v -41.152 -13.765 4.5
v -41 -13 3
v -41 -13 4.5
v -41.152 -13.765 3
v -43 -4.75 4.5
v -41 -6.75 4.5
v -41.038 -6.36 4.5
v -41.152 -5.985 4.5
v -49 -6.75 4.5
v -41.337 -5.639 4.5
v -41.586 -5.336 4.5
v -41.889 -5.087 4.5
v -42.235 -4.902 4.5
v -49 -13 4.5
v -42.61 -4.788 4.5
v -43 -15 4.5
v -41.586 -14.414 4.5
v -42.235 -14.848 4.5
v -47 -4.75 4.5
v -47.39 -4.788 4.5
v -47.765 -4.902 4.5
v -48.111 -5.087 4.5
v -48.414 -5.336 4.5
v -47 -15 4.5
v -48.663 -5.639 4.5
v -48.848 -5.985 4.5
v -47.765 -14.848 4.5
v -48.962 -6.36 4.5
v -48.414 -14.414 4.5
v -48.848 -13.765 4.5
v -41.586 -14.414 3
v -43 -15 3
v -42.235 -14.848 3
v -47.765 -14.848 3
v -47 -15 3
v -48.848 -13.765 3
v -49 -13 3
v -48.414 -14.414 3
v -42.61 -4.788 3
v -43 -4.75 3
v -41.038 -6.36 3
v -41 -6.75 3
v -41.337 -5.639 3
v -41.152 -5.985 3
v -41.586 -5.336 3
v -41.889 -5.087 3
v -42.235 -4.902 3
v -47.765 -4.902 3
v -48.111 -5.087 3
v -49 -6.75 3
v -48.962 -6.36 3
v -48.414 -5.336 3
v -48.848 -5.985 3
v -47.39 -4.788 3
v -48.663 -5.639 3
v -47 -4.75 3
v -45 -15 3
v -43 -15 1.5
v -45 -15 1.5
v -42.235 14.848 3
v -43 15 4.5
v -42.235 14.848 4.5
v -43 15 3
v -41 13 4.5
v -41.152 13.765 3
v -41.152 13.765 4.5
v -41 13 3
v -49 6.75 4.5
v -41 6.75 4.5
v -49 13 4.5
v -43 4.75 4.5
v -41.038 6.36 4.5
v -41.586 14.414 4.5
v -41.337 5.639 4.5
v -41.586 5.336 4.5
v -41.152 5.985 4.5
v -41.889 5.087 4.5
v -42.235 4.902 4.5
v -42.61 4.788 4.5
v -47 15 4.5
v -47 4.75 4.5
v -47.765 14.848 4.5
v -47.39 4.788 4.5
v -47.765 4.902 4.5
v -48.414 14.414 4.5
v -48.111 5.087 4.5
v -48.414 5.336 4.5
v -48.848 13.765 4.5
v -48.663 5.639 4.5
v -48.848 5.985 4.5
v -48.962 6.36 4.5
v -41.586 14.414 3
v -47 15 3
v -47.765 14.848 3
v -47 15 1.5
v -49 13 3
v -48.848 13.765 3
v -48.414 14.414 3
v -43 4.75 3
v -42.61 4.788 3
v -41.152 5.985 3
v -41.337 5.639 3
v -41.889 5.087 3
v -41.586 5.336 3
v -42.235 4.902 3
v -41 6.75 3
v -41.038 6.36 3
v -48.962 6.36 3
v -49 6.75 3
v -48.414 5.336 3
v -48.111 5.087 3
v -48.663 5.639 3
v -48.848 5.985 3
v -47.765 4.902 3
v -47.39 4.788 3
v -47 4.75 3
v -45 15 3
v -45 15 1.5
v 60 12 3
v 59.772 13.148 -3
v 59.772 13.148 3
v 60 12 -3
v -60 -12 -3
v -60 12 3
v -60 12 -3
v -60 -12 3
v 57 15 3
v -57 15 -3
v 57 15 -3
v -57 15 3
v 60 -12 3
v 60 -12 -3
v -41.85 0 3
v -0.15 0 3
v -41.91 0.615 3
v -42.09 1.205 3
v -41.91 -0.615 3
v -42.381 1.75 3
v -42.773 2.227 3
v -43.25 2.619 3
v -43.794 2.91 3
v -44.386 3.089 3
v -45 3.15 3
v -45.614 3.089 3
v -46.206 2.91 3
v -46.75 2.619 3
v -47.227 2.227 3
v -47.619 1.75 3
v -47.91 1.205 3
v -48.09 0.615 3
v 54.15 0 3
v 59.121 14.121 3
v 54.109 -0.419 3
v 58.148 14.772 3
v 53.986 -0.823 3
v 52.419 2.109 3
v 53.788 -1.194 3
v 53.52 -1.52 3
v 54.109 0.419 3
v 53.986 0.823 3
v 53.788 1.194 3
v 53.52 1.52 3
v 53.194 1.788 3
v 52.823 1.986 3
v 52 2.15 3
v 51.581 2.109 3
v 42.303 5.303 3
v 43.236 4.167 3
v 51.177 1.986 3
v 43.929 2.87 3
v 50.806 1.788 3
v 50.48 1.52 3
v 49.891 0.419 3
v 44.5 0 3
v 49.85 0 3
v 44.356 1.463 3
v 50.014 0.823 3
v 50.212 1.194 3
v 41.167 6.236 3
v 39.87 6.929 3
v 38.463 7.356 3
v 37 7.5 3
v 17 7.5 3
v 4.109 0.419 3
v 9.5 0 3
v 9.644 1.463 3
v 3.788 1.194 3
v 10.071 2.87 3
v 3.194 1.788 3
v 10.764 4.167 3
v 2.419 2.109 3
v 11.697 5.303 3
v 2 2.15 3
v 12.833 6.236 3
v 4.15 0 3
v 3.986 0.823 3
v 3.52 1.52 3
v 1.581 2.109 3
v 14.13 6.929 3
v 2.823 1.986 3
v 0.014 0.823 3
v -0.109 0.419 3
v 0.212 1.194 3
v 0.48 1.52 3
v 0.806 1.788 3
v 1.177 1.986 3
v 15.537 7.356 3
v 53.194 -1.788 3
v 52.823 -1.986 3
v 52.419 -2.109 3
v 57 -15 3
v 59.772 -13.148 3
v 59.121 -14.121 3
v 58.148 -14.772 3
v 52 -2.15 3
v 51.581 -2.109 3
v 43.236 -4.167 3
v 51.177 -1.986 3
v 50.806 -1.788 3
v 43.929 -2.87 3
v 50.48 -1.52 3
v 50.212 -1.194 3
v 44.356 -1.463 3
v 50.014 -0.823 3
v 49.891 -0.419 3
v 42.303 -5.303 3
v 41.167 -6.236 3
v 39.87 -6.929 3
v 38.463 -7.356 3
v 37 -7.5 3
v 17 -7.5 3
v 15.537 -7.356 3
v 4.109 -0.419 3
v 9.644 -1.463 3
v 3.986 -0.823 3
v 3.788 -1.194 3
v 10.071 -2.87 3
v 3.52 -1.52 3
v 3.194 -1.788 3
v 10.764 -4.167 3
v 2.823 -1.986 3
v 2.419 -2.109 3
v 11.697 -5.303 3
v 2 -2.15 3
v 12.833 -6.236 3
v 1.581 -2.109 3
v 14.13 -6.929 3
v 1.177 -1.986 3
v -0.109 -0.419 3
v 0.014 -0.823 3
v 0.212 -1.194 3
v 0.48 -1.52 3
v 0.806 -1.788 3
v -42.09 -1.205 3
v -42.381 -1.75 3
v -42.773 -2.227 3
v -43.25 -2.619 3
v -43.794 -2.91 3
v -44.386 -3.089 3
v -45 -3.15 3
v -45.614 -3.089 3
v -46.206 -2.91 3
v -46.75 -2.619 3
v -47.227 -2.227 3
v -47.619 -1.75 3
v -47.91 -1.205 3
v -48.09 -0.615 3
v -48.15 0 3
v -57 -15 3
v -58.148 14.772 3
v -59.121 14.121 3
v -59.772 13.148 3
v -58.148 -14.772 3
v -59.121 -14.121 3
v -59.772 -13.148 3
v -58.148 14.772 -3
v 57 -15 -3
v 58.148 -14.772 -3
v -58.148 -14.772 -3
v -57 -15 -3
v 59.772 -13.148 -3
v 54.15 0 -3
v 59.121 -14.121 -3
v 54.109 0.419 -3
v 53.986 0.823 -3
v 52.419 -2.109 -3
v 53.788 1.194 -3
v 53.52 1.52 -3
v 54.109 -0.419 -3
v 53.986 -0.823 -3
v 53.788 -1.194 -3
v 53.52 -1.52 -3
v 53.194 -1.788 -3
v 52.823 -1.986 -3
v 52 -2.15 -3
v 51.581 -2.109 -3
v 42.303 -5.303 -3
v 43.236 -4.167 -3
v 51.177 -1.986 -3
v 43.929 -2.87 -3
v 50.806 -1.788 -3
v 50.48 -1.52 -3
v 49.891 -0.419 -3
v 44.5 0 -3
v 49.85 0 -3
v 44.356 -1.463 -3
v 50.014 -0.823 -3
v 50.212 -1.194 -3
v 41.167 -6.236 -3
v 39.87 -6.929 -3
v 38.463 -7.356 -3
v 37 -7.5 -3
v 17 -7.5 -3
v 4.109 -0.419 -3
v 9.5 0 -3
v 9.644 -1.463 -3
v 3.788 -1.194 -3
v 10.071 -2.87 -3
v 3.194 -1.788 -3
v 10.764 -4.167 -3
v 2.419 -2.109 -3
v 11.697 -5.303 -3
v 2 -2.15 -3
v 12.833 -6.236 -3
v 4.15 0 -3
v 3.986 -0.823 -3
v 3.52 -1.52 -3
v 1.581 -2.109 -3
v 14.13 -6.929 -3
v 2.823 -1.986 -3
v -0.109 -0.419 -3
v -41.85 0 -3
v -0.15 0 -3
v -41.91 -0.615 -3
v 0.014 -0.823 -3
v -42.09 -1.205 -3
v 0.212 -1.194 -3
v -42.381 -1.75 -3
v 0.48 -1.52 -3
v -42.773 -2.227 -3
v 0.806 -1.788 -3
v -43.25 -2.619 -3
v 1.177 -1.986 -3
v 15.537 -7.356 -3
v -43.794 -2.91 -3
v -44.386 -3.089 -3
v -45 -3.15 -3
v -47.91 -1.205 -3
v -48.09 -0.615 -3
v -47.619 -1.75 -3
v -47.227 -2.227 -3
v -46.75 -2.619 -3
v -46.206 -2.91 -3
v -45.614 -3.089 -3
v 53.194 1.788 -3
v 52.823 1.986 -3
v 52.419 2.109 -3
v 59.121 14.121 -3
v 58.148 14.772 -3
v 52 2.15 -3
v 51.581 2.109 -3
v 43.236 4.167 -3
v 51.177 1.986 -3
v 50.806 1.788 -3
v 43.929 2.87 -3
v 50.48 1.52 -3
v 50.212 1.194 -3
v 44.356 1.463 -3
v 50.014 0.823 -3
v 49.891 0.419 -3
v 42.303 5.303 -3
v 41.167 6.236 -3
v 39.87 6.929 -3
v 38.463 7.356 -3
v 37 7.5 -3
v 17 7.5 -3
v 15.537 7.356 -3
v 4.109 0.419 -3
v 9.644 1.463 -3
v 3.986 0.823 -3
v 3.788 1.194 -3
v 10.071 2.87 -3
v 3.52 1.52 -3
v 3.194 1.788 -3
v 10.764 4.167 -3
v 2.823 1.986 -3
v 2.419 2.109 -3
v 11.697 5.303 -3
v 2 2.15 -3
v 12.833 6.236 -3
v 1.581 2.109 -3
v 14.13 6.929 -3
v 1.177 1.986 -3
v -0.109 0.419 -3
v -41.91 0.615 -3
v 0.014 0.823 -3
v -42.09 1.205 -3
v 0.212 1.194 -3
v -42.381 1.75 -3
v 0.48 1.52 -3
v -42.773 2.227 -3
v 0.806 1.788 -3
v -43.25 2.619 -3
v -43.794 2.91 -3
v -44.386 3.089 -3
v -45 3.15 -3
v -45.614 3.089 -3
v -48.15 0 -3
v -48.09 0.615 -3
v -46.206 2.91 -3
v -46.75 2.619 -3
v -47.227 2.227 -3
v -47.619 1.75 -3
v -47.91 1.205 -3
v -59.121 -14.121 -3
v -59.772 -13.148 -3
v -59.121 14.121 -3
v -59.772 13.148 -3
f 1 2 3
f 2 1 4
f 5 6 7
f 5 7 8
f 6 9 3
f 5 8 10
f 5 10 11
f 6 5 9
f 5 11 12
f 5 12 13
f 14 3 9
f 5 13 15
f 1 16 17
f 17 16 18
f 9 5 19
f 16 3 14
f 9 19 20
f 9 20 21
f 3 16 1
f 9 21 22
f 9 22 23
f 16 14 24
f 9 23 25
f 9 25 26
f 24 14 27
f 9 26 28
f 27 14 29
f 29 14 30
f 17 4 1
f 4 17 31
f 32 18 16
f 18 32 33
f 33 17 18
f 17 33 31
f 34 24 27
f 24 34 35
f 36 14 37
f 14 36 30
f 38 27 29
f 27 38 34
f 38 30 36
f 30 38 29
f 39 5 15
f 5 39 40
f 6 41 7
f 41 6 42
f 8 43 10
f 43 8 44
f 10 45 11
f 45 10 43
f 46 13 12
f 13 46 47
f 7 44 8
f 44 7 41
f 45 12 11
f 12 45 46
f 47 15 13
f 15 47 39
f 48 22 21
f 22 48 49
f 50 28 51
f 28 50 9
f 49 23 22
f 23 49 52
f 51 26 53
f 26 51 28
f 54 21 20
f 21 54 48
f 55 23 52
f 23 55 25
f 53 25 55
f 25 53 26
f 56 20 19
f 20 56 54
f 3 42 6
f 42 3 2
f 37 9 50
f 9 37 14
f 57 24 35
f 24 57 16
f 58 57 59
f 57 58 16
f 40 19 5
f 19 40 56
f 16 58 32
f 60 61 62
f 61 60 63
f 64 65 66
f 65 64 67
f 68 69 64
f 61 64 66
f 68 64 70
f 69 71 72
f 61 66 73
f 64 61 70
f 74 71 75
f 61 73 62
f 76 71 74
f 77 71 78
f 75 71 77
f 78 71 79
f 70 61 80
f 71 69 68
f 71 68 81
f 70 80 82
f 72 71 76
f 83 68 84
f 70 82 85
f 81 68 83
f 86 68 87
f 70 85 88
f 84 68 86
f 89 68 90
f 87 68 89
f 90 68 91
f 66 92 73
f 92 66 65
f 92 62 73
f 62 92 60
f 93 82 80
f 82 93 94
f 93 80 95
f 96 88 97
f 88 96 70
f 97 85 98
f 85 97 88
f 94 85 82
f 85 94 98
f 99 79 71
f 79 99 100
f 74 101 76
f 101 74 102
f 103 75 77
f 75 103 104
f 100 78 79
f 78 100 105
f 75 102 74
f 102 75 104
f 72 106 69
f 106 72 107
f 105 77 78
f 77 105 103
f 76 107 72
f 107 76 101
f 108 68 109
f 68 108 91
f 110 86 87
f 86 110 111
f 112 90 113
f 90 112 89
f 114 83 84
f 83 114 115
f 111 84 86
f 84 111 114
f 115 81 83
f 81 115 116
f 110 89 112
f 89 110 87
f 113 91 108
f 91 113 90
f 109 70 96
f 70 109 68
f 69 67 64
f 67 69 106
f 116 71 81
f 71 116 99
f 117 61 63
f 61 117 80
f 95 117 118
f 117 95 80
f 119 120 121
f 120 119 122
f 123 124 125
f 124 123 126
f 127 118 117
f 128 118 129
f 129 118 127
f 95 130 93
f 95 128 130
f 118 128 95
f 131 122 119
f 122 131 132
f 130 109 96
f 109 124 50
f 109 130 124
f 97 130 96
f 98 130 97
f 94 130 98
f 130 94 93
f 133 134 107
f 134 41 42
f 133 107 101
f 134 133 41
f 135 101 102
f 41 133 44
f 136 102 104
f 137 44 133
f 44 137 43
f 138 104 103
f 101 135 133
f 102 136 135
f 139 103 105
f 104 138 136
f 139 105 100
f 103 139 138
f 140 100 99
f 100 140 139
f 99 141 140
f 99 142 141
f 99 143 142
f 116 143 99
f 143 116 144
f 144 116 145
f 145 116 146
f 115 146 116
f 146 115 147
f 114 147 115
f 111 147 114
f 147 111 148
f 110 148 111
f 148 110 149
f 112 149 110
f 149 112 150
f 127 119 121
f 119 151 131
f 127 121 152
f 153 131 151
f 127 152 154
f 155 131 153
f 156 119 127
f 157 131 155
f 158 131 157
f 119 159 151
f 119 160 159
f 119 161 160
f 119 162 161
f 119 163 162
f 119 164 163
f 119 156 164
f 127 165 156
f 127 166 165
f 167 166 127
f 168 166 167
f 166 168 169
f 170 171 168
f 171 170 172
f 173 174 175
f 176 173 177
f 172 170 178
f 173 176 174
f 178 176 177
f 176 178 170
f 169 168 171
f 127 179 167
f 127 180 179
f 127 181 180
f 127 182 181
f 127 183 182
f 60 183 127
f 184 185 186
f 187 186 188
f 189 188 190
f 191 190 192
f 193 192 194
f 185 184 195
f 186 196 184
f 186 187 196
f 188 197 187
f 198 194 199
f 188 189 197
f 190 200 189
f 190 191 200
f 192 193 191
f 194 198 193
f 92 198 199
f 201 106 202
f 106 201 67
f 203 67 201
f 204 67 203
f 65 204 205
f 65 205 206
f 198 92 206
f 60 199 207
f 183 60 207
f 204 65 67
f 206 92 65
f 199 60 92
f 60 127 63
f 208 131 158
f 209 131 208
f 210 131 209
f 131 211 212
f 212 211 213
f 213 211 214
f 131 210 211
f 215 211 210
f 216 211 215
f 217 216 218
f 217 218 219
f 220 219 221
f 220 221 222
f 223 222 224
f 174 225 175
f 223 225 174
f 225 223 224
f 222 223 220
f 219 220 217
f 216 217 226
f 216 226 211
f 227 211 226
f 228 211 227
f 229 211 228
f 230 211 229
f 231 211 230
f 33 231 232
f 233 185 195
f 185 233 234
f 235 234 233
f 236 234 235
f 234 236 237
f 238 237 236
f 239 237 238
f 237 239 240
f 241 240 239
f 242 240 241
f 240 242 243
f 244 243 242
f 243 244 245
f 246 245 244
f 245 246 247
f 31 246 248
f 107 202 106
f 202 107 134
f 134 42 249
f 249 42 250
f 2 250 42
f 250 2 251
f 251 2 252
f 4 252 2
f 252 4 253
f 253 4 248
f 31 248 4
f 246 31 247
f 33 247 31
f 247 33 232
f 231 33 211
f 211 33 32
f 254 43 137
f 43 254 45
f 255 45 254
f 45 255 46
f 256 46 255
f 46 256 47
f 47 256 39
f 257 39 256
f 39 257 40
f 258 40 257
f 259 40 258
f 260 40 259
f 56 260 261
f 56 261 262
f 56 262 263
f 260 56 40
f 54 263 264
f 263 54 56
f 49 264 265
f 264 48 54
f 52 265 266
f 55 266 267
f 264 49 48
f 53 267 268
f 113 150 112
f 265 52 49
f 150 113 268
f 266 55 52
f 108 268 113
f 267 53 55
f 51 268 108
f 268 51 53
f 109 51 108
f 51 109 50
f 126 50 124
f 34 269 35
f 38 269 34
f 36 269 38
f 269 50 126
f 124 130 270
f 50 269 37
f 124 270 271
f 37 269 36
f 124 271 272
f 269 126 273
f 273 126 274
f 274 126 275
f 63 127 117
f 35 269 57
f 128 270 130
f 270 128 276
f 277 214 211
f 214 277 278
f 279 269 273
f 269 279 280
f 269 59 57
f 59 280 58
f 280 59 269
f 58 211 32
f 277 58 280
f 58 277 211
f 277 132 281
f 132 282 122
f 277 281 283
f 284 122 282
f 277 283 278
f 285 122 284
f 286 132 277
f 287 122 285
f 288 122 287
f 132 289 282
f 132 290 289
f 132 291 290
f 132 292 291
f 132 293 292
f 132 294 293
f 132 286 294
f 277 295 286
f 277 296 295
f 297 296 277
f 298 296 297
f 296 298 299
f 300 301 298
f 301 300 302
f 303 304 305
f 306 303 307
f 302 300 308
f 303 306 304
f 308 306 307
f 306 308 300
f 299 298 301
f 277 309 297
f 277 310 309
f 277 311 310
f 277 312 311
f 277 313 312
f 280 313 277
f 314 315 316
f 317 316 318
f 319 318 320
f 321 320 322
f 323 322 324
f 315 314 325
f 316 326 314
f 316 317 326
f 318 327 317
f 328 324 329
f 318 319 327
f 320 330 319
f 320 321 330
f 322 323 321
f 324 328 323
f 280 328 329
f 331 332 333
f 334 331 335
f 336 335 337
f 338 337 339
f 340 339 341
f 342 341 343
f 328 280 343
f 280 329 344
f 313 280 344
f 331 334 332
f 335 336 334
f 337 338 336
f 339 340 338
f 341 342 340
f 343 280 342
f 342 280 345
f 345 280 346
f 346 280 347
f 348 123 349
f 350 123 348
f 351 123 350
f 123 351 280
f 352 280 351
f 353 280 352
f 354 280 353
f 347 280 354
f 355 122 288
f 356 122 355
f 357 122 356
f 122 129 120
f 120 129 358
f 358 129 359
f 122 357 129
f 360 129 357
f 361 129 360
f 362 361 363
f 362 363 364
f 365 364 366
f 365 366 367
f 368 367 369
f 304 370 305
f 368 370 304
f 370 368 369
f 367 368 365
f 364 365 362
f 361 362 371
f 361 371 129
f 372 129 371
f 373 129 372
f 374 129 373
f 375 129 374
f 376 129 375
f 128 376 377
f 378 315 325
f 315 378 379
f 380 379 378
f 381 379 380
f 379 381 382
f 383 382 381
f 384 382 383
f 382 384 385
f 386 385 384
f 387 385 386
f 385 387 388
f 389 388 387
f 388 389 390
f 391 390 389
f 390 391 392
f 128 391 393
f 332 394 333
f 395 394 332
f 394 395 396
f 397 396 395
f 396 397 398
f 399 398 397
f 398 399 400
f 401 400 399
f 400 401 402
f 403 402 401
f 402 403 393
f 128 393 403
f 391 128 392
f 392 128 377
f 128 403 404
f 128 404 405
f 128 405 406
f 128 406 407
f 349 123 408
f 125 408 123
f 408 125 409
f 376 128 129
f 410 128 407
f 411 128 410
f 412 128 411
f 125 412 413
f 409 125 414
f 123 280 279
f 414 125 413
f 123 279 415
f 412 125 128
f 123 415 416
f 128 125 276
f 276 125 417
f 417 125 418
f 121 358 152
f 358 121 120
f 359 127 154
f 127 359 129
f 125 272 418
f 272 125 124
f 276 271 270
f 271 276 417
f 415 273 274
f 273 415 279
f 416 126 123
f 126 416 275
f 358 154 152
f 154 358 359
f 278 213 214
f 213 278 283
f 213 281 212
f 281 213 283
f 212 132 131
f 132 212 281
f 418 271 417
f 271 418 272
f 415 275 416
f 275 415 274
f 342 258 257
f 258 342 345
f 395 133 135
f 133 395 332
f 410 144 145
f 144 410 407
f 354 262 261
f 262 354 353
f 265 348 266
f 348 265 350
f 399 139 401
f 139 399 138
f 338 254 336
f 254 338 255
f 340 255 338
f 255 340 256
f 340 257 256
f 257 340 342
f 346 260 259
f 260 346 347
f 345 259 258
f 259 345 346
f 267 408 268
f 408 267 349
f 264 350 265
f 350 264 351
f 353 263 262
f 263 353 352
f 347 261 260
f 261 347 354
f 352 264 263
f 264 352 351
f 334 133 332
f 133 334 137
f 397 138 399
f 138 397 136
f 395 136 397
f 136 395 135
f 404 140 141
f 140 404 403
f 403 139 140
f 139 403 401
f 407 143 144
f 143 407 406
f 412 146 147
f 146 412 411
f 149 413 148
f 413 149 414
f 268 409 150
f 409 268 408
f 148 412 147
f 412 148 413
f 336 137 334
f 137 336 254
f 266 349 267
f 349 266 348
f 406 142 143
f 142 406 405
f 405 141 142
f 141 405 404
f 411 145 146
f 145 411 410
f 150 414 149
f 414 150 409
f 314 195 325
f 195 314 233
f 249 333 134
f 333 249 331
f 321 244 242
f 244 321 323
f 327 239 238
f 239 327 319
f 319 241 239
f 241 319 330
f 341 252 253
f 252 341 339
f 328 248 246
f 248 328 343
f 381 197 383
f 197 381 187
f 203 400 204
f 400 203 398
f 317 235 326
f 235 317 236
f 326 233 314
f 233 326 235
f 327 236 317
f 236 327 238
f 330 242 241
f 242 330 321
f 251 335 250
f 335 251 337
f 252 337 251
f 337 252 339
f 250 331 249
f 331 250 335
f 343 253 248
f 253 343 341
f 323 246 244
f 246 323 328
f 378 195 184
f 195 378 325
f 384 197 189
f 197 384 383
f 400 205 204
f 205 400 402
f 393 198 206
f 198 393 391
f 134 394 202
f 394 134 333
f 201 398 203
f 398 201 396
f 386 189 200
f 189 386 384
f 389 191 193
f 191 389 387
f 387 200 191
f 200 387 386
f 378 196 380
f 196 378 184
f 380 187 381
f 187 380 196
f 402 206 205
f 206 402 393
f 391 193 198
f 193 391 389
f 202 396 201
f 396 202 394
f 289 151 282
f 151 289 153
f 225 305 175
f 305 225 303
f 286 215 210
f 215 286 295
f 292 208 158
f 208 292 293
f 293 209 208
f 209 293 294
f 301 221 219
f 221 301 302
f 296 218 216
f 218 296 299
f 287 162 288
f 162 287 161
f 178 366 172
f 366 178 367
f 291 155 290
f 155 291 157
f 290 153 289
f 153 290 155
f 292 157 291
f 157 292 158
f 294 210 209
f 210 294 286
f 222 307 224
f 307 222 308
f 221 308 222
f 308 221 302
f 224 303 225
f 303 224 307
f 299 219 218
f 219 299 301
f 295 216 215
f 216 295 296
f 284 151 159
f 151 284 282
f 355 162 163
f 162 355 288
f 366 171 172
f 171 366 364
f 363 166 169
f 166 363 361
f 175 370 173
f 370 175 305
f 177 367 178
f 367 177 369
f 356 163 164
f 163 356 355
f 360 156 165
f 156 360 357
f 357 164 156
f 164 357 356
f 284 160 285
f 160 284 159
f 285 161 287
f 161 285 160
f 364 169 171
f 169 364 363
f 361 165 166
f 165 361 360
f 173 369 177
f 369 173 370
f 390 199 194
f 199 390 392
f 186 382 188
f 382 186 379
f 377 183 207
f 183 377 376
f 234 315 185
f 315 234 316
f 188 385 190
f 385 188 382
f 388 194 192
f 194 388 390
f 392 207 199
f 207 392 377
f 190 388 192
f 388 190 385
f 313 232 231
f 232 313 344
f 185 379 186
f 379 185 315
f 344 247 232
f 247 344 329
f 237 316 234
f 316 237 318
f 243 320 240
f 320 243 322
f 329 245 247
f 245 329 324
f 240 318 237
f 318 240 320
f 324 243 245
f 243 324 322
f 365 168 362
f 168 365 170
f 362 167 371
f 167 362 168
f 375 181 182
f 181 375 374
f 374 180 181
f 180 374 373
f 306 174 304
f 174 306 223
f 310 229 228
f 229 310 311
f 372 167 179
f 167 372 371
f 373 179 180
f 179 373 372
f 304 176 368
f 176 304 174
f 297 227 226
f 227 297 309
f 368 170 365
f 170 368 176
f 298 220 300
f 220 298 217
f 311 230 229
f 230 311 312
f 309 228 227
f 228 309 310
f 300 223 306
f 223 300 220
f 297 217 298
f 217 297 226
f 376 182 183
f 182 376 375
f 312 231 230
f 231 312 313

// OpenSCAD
/* 
   === RebeliX BoX ===

   power supply holder 24V/400W
   GNU GPL v3
   Martin Neruda <neruda@RebeliX.cz>
   http://www.RebeliX.cz
*/

//include <../configuration.scad>
include <../../inc/functions.scad>

M6_screw_offset = M6x14_offset;
M3_screw_offset = 6.5;
M3_screws_distance = 50;

holder_length = 90 + profile_width;
holder_width = profile_width;
holder_base_height = 6;
holder_height = holder_base_height;

first_hole = 32;
second_hole = first_hole + M3_screws_distance;

module supply_holder_base()
{
  rounded_box(holder_length,holder_width,holder_base_height,6,1,1,1,1);
  
  translate([-holder_length/2 + profile_width/2,0,holder_height/2 - holder_base_height/2])rounded_box(profile_width,holder_width,holder_height,6,1,1,1,1);
  
  translate([-holder_length/2 + profile_width/2,0,-holder_base_height/2 + holder_height]) rotate([0,0,90]) drazka();
}

module supply_holder_cuts()
{
  // Otvory pro M6 srouby
  translate([-holder_length/2 + profile_width/2,0,-holder_base_height/2 + holder_height - M6_screw_offset]) rotate([180,0,0]) screw_hole(1,0,M6_head_D,M6_screw_D);

  // Otvory pro pridelani zdroje
  translate([-holder_length/2 + profile_width + first_hole,0,holder_base_height/2 - M3_screw_offset]) rotate([180,0,0]) screw_hole(0,0,M4_head_D,M4_screw_D);
  
  translate([-holder_length/2 + profile_width + second_hole,0,holder_base_height/2 - M3_screw_offset]) rotate([180,0,0]) screw_hole(0,0,M4_head_D,M4_screw_D);
  
  // Vyrez v drzaku
  translate([-holder_length/2 + profile_width + first_hole + 15,0,0]) cylinder(d=holder_width/2,h=30,$fn=32,center=true);
  
  translate([-holder_length/2 + profile_width + second_hole - 15,0,0]) cylinder(d=holder_width/2,h=30,$fn=32,center=true);
  
  translate([-holder_length/2 + profile_width + first_hole + 15 + (M3_screws_distance - 30)/2,0,0]) cube([M3_screws_distance - 30,holder_width/2,30],center=true); 
}

module supply_holder()
{
  difference()
  {
    supply_holder_base();
	supply_holder_cuts();
  }
}

supply_holder();
